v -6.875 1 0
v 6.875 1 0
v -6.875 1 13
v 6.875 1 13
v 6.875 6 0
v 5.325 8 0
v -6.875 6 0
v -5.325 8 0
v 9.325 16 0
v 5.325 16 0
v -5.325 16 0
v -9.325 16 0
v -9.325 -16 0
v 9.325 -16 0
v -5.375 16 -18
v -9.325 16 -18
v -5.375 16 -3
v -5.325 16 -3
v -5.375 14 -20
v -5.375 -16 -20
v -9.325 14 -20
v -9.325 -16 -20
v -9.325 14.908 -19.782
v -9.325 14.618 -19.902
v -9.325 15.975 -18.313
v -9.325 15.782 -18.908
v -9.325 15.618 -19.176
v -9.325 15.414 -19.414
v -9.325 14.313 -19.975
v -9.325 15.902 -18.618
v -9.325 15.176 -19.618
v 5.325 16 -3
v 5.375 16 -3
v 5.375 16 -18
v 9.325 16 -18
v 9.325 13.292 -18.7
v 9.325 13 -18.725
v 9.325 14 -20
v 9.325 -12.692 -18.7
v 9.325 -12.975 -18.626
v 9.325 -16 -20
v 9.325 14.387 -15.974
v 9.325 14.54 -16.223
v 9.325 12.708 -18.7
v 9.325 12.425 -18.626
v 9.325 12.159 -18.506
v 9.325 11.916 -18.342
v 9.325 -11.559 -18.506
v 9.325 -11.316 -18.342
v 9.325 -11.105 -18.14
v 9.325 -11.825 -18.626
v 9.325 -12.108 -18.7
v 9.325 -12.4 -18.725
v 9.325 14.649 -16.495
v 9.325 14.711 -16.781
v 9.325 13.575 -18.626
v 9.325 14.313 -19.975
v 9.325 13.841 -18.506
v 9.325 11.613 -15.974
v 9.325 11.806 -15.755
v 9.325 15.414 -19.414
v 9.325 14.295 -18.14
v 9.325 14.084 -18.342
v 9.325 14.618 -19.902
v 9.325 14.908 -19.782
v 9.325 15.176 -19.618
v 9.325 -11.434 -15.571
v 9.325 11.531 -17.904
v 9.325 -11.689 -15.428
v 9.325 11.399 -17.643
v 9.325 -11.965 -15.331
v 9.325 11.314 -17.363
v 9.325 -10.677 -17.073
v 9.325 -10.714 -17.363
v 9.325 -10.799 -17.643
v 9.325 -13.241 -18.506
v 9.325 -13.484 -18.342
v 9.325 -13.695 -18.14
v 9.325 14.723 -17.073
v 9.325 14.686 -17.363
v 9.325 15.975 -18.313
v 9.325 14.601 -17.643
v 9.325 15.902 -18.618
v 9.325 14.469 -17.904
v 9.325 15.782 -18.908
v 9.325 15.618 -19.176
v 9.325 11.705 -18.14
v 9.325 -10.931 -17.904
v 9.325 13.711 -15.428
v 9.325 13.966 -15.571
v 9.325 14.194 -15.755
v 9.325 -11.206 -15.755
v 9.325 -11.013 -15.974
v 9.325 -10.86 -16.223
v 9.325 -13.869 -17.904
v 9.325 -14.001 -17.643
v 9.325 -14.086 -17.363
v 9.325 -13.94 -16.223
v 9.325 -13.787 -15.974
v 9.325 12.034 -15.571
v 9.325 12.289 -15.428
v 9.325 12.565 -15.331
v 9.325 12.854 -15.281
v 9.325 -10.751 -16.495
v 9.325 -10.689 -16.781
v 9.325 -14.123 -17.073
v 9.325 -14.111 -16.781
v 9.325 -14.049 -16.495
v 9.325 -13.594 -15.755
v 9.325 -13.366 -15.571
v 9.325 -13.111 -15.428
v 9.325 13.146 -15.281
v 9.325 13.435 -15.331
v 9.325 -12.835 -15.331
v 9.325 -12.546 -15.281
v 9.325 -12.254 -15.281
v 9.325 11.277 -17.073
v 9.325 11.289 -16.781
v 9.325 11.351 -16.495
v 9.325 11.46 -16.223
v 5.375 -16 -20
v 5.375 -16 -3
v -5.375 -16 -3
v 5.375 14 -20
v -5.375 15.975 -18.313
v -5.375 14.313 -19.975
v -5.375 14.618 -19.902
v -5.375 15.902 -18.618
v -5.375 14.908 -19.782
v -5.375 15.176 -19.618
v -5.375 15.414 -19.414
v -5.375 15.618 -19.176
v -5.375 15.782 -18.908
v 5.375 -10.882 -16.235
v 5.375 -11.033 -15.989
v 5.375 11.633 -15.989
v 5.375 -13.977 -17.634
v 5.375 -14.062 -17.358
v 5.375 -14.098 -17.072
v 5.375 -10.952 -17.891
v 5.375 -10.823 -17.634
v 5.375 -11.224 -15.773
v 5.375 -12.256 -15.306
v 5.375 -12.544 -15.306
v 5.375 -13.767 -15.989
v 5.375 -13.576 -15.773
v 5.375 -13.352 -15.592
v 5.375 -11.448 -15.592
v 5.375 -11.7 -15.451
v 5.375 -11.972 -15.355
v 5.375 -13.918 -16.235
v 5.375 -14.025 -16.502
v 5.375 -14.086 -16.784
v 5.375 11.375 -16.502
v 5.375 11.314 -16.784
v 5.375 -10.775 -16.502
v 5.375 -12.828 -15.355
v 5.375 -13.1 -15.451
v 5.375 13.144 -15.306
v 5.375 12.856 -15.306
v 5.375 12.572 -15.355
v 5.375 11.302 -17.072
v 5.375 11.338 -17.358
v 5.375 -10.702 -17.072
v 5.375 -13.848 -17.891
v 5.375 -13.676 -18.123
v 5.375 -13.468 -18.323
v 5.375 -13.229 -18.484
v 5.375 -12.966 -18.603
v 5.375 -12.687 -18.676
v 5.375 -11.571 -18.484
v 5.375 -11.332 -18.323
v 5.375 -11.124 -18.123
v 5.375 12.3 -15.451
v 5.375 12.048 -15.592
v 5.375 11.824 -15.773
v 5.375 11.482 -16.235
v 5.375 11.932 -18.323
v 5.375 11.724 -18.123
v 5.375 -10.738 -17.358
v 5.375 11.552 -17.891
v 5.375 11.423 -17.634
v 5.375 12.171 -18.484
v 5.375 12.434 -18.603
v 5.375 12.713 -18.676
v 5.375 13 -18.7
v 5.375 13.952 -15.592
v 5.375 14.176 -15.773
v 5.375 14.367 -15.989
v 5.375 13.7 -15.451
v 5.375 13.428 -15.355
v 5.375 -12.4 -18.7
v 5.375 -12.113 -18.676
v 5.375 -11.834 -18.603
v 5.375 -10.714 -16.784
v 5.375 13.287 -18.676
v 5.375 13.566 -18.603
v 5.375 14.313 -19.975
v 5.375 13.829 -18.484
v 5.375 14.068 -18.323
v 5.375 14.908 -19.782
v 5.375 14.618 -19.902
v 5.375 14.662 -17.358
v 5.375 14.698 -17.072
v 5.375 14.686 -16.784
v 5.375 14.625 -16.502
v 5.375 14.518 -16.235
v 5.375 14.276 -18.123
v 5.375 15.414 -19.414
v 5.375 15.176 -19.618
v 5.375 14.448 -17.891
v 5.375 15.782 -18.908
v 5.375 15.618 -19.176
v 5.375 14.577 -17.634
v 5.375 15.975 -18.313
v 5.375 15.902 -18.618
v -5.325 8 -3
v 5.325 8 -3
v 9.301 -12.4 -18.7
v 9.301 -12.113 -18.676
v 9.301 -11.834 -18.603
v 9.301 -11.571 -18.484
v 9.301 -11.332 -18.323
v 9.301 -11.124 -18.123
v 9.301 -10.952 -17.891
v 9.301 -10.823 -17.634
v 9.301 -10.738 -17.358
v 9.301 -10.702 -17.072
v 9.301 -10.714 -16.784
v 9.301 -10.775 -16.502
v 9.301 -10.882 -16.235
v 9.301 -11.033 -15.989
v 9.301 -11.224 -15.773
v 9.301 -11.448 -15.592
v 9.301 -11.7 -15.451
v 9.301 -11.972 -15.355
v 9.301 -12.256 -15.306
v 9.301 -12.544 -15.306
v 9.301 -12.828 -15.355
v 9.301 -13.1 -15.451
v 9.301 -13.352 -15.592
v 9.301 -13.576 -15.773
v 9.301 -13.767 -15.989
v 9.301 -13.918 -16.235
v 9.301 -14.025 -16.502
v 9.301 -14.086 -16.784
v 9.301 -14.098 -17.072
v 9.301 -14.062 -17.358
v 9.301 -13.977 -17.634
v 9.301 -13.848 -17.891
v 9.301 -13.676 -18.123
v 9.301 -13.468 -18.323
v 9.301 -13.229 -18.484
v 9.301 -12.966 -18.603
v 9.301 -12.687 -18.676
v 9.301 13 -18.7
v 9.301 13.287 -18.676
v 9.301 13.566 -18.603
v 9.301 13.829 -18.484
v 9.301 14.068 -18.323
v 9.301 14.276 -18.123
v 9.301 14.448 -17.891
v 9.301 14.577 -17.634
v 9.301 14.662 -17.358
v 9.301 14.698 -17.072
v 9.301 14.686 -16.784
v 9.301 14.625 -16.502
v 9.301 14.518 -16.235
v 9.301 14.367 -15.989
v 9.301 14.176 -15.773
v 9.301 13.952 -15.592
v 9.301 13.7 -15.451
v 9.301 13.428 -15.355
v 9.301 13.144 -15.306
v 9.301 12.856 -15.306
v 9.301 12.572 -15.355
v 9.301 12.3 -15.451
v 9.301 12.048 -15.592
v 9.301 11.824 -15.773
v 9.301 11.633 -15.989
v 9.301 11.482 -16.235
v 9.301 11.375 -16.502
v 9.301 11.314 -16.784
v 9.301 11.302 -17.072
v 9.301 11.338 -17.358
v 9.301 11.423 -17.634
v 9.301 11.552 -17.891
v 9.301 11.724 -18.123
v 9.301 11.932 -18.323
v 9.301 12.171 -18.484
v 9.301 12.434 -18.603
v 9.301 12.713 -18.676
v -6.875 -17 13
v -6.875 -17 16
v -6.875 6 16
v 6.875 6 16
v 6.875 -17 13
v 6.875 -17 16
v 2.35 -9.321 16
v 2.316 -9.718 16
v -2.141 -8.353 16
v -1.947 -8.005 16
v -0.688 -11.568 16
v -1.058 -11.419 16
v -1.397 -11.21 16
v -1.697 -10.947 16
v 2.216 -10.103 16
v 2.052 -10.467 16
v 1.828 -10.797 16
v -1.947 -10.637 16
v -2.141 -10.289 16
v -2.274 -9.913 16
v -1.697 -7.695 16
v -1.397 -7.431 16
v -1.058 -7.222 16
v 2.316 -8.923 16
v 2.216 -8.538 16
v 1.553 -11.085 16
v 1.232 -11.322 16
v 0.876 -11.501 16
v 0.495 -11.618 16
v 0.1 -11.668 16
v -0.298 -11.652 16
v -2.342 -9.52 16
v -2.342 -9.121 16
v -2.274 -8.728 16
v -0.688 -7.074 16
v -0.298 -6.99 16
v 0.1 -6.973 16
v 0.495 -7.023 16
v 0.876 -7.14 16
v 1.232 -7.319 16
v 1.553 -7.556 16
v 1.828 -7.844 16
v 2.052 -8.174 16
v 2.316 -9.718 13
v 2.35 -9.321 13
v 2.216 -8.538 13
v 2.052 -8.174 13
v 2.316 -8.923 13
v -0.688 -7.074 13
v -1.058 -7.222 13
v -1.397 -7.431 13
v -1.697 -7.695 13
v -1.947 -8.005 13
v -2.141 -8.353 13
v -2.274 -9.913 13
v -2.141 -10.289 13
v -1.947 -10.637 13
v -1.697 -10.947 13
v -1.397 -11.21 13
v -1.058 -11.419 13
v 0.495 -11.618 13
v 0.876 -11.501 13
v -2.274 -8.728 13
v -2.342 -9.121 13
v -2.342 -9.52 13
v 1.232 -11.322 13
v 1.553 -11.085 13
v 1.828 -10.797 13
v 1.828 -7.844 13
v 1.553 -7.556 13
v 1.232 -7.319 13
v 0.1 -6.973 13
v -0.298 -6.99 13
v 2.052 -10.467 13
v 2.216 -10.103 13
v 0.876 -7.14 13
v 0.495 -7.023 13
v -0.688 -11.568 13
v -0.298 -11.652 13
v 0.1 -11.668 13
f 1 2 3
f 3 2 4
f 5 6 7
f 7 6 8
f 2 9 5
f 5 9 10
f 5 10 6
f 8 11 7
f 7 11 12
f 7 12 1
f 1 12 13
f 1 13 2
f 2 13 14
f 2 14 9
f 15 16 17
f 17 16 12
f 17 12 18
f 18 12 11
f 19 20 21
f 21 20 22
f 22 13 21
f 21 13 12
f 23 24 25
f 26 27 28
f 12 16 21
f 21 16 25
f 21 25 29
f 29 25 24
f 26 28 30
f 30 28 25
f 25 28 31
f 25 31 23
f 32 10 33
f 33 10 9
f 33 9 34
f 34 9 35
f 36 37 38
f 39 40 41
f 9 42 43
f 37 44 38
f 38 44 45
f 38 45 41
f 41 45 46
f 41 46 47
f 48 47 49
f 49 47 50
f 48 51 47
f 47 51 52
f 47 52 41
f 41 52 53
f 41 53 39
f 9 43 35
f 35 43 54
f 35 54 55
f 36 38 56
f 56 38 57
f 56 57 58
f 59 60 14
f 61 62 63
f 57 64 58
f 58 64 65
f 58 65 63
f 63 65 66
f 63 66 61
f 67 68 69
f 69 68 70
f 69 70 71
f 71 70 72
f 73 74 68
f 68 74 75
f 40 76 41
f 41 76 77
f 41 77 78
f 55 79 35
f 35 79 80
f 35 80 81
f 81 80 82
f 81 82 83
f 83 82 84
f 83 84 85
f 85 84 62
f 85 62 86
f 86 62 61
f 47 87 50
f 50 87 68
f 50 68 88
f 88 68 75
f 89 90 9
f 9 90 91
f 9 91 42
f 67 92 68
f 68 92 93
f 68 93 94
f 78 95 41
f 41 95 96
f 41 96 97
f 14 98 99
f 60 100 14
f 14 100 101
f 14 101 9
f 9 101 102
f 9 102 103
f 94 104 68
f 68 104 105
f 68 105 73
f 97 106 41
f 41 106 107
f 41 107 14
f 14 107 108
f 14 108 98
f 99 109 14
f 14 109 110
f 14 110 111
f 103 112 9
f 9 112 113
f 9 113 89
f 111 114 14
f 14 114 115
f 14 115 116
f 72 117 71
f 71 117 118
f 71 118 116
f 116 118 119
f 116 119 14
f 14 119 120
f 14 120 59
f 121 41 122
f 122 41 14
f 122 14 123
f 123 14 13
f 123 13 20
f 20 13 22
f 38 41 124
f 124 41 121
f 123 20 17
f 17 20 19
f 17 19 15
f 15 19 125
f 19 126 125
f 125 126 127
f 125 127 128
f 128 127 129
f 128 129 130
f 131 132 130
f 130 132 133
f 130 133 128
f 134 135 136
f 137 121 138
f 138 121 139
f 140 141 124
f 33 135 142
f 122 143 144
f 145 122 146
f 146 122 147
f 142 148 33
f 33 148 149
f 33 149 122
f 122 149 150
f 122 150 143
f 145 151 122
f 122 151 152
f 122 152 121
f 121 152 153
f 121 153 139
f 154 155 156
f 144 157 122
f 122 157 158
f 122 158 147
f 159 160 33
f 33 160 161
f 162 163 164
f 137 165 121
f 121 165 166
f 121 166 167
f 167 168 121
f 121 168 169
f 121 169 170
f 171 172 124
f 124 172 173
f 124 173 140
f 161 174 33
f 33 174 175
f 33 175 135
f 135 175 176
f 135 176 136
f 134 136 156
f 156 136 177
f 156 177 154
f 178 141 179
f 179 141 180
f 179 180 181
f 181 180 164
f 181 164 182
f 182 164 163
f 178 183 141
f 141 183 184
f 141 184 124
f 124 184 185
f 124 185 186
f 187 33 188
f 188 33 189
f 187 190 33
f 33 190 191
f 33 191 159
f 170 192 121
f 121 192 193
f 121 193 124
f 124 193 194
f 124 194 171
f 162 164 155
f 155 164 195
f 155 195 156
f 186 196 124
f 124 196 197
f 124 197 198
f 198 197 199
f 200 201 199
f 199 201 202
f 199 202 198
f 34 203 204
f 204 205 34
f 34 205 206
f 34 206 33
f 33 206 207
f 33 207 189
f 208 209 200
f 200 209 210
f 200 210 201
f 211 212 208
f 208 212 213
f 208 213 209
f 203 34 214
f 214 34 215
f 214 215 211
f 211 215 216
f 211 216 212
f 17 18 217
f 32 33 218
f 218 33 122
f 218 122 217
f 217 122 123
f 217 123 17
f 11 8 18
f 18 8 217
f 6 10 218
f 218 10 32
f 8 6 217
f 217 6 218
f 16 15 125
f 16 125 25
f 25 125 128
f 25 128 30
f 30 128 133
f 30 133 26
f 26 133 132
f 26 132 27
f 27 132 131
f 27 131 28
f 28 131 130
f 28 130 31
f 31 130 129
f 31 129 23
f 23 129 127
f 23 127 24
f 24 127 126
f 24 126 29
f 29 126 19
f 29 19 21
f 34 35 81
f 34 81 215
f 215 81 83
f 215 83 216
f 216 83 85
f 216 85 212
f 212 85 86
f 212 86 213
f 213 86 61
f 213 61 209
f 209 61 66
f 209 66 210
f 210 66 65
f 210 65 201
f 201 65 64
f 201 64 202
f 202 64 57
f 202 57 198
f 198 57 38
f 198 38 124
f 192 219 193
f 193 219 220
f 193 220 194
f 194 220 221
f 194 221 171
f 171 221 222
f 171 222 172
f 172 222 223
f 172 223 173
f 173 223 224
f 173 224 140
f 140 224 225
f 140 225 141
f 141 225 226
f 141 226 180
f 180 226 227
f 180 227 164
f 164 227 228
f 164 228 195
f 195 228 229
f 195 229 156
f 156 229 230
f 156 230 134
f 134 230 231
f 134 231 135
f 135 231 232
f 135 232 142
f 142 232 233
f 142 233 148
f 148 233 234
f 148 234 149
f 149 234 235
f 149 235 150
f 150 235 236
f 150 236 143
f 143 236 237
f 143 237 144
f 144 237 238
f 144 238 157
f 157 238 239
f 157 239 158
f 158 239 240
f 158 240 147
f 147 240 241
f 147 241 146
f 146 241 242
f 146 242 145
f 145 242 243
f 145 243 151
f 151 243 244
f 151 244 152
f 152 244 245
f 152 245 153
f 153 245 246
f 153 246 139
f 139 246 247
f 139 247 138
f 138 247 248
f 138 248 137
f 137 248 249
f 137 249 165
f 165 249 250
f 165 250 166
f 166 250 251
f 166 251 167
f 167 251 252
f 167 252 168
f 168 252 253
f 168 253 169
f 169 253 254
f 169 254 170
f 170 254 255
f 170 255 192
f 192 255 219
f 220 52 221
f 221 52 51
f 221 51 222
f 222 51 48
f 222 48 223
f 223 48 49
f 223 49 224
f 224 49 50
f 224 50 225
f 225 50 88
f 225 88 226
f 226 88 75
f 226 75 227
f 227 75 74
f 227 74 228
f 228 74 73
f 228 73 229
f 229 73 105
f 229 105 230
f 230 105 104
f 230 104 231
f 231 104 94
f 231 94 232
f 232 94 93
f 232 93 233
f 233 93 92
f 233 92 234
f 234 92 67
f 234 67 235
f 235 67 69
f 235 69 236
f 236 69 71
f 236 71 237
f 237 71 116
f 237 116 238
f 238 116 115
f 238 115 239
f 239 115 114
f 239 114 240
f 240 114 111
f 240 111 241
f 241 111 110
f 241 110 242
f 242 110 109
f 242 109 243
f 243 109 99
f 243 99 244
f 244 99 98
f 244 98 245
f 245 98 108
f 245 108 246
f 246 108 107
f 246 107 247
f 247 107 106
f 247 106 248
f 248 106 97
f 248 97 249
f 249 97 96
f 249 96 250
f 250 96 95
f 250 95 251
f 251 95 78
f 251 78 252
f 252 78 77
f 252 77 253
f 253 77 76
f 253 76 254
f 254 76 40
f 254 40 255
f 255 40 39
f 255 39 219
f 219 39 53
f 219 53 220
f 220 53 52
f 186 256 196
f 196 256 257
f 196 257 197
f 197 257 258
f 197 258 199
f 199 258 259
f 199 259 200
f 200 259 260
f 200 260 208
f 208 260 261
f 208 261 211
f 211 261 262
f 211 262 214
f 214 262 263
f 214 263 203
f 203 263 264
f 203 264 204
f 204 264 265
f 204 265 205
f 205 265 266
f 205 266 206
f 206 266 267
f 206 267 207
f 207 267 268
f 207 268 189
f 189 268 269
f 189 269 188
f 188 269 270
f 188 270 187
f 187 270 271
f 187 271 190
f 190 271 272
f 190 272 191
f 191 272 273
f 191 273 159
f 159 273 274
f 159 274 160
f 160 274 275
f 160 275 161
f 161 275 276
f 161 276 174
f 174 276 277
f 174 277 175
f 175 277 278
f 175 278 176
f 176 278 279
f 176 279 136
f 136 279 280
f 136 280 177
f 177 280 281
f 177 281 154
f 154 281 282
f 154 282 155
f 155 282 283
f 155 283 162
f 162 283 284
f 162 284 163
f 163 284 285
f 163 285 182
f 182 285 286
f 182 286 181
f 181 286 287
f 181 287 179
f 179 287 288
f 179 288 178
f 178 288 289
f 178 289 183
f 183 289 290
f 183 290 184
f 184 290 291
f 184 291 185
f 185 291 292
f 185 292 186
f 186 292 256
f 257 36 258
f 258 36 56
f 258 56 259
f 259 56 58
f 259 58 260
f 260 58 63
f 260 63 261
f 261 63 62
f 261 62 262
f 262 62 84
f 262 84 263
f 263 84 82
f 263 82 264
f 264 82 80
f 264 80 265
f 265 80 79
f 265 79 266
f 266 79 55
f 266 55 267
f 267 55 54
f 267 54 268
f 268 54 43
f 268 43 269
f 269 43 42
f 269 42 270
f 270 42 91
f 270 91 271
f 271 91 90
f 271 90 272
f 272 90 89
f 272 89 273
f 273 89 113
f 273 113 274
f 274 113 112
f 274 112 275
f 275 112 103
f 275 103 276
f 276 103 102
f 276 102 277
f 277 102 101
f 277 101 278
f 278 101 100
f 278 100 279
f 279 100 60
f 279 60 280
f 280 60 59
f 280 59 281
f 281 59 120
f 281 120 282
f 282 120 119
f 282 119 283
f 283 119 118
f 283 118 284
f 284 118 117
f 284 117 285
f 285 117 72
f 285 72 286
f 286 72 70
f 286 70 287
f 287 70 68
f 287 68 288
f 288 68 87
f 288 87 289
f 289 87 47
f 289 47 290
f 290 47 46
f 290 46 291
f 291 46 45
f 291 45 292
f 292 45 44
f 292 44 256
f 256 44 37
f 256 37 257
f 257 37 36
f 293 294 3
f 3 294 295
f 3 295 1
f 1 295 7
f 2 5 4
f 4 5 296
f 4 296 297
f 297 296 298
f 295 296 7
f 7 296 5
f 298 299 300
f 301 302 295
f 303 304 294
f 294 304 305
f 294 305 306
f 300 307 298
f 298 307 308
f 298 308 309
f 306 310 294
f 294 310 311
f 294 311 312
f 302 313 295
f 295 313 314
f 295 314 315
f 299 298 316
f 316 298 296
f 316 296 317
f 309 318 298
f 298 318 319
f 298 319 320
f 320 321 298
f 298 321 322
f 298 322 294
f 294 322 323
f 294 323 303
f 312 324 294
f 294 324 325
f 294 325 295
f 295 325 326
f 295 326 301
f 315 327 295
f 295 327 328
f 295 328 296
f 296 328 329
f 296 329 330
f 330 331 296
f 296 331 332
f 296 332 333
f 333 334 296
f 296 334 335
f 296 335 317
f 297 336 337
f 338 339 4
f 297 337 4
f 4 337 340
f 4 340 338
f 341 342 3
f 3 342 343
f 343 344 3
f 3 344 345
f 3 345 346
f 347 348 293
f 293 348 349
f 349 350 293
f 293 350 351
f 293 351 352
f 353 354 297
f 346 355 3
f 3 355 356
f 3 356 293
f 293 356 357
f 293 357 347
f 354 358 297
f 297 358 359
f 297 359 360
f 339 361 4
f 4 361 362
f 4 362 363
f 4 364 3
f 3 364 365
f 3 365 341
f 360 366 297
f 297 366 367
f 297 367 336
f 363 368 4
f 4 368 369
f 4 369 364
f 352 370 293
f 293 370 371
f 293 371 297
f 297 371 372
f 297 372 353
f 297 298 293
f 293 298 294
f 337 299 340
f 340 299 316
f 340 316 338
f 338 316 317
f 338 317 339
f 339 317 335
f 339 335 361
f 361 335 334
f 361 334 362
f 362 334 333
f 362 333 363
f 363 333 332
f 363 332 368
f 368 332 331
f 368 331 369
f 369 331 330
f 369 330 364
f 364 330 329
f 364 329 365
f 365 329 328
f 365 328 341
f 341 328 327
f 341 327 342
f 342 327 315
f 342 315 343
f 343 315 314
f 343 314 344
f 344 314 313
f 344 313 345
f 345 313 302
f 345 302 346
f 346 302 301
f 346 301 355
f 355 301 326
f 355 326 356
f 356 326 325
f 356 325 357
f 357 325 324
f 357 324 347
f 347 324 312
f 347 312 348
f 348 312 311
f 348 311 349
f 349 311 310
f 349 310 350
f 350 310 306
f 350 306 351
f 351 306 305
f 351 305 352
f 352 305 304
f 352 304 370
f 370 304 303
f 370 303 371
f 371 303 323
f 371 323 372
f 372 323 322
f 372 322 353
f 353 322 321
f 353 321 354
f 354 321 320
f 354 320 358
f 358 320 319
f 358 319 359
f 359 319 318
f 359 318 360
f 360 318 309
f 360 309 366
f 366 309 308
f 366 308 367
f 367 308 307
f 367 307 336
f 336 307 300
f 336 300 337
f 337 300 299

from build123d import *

# Parameters (mm, degrees)
SKETCH_1_W                   = 18.65
SKETCH_1_H                   = 32
EXTRUDE_1_DEPTH              = 20
SKETCH_2_W                   = 10.75
SKETCH_2_H                   = 32
CUT_EXTRUDE_2_DEPTH          = 17
CUT_EXTRUDE_3_REACH          = 22
SKETCH_4_W                   = 10.65
SKETCH_4_H                   = 8
FILLET_1_R                   = 2
HOLE_WIZARD_M3_4_D           = 3.4
HOLE_WIZARD_M3_4_DEPTH       = 3.95
HOLE_WIZARD_M3_4_CSINK_D     = 3.45
HOLE_WIZARD_M3_4_CSINK_ANGLE = 92
SKETCH_18_W                  = 13.75
SKETCH_18_H                  = 5
EXTRUDE_2_DEPTH              = 16
SKETCH_19_W                  = 13.75
SKETCH_19_H                  = 3
EXTRUDE_3_DEPTH              = 18
CUT_EXTRUDE_4_REACH          = 38
SKETCH_20_R                  = 2.35


with BuildPart() as part:
    # 스케치1 → 보스-돌출1 (new body)
    with BuildSketch(Plane.XY):
        Rectangle(SKETCH_1_W, SKETCH_1_H)
    extrude(amount=-EXTRUDE_1_DEPTH)

    # 스케치2 → 컷-돌출2 (cut)
    with BuildSketch(Plane(origin=(0, 0, -20), x_dir=(-1, 0, 0), z_dir=(0, 0, -1))):
        Rectangle(SKETCH_2_W, SKETCH_2_H)
    extrude(amount=-CUT_EXTRUDE_2_DEPTH, mode=Mode.SUBTRACT)

    # 스케치4 → 컷-돌출3 (cut, up to next)
    with BuildSketch(Plane.XY, mode=Mode.PRIVATE) as cut_extrude_3_sk1:
        with Locations((0, 12)):
            Rectangle(SKETCH_4_W, SKETCH_4_H)
    cut_extrude_3_tool1 = extrude(cut_extrude_3_sk1.sketch, amount=-CUT_EXTRUDE_3_REACH, mode=Mode.PRIVATE) & part.part
    add(cut_extrude_3_tool1.solids().sort_by_distance((0, 12, 0))[0], mode=Mode.SUBTRACT)

    # 필렛1
    fillet_1_edges = [part.edges().sort_by_distance(p)[0] for p in [
        (-7.35, 16, -20),
        (7.35, 16, -20),
    ]]
    fillet(fillet_1_edges, radius=FILLET_1_R)

    # M3 여유 구멍4
    with Locations(Plane(origin=(9.325, 0, 0), x_dir=(0, 0, -1), z_dir=(1, 0, 0))):
        with Locations((17, 13), (17, -12.4), (38.233038072, 15.712174446)):
            CounterSinkHole(HOLE_WIZARD_M3_4_D / 2, HOLE_WIZARD_M3_4_CSINK_D / 2, depth=HOLE_WIZARD_M3_4_DEPTH, counter_sink_angle=HOLE_WIZARD_M3_4_CSINK_ANGLE)

    # 스케치18 → 보스-돌출2 (add)
    with BuildSketch(Plane.XY):
        with Locations((0, 3.5)):
            Rectangle(SKETCH_18_W, SKETCH_18_H)
    extrude(amount=EXTRUDE_2_DEPTH)

    # 스케치19 → 보스-돌출3 (add)
    with BuildSketch(Plane.XZ.offset(-1)):
        with Locations((0, 14.5)):
            Rectangle(SKETCH_19_W, SKETCH_19_H)
    extrude(amount=EXTRUDE_3_DEPTH)

    # 스케치20 → 컷-돌출4 (cut, up to next)
    with BuildSketch(Plane.XY.offset(16), mode=Mode.PRIVATE) as cut_extrude_4_sk1:
        with Locations((0, -9.320578261)):
            Circle(SKETCH_20_R)
    cut_extrude_4_tool1 = extrude(cut_extrude_4_sk1.sketch, amount=-CUT_EXTRUDE_4_REACH, mode=Mode.PRIVATE) & part.part
    add(cut_extrude_4_tool1.solids().sort_by_distance((0, -9.320578, 16))[0], mode=Mode.SUBTRACT)


solid = part.part
